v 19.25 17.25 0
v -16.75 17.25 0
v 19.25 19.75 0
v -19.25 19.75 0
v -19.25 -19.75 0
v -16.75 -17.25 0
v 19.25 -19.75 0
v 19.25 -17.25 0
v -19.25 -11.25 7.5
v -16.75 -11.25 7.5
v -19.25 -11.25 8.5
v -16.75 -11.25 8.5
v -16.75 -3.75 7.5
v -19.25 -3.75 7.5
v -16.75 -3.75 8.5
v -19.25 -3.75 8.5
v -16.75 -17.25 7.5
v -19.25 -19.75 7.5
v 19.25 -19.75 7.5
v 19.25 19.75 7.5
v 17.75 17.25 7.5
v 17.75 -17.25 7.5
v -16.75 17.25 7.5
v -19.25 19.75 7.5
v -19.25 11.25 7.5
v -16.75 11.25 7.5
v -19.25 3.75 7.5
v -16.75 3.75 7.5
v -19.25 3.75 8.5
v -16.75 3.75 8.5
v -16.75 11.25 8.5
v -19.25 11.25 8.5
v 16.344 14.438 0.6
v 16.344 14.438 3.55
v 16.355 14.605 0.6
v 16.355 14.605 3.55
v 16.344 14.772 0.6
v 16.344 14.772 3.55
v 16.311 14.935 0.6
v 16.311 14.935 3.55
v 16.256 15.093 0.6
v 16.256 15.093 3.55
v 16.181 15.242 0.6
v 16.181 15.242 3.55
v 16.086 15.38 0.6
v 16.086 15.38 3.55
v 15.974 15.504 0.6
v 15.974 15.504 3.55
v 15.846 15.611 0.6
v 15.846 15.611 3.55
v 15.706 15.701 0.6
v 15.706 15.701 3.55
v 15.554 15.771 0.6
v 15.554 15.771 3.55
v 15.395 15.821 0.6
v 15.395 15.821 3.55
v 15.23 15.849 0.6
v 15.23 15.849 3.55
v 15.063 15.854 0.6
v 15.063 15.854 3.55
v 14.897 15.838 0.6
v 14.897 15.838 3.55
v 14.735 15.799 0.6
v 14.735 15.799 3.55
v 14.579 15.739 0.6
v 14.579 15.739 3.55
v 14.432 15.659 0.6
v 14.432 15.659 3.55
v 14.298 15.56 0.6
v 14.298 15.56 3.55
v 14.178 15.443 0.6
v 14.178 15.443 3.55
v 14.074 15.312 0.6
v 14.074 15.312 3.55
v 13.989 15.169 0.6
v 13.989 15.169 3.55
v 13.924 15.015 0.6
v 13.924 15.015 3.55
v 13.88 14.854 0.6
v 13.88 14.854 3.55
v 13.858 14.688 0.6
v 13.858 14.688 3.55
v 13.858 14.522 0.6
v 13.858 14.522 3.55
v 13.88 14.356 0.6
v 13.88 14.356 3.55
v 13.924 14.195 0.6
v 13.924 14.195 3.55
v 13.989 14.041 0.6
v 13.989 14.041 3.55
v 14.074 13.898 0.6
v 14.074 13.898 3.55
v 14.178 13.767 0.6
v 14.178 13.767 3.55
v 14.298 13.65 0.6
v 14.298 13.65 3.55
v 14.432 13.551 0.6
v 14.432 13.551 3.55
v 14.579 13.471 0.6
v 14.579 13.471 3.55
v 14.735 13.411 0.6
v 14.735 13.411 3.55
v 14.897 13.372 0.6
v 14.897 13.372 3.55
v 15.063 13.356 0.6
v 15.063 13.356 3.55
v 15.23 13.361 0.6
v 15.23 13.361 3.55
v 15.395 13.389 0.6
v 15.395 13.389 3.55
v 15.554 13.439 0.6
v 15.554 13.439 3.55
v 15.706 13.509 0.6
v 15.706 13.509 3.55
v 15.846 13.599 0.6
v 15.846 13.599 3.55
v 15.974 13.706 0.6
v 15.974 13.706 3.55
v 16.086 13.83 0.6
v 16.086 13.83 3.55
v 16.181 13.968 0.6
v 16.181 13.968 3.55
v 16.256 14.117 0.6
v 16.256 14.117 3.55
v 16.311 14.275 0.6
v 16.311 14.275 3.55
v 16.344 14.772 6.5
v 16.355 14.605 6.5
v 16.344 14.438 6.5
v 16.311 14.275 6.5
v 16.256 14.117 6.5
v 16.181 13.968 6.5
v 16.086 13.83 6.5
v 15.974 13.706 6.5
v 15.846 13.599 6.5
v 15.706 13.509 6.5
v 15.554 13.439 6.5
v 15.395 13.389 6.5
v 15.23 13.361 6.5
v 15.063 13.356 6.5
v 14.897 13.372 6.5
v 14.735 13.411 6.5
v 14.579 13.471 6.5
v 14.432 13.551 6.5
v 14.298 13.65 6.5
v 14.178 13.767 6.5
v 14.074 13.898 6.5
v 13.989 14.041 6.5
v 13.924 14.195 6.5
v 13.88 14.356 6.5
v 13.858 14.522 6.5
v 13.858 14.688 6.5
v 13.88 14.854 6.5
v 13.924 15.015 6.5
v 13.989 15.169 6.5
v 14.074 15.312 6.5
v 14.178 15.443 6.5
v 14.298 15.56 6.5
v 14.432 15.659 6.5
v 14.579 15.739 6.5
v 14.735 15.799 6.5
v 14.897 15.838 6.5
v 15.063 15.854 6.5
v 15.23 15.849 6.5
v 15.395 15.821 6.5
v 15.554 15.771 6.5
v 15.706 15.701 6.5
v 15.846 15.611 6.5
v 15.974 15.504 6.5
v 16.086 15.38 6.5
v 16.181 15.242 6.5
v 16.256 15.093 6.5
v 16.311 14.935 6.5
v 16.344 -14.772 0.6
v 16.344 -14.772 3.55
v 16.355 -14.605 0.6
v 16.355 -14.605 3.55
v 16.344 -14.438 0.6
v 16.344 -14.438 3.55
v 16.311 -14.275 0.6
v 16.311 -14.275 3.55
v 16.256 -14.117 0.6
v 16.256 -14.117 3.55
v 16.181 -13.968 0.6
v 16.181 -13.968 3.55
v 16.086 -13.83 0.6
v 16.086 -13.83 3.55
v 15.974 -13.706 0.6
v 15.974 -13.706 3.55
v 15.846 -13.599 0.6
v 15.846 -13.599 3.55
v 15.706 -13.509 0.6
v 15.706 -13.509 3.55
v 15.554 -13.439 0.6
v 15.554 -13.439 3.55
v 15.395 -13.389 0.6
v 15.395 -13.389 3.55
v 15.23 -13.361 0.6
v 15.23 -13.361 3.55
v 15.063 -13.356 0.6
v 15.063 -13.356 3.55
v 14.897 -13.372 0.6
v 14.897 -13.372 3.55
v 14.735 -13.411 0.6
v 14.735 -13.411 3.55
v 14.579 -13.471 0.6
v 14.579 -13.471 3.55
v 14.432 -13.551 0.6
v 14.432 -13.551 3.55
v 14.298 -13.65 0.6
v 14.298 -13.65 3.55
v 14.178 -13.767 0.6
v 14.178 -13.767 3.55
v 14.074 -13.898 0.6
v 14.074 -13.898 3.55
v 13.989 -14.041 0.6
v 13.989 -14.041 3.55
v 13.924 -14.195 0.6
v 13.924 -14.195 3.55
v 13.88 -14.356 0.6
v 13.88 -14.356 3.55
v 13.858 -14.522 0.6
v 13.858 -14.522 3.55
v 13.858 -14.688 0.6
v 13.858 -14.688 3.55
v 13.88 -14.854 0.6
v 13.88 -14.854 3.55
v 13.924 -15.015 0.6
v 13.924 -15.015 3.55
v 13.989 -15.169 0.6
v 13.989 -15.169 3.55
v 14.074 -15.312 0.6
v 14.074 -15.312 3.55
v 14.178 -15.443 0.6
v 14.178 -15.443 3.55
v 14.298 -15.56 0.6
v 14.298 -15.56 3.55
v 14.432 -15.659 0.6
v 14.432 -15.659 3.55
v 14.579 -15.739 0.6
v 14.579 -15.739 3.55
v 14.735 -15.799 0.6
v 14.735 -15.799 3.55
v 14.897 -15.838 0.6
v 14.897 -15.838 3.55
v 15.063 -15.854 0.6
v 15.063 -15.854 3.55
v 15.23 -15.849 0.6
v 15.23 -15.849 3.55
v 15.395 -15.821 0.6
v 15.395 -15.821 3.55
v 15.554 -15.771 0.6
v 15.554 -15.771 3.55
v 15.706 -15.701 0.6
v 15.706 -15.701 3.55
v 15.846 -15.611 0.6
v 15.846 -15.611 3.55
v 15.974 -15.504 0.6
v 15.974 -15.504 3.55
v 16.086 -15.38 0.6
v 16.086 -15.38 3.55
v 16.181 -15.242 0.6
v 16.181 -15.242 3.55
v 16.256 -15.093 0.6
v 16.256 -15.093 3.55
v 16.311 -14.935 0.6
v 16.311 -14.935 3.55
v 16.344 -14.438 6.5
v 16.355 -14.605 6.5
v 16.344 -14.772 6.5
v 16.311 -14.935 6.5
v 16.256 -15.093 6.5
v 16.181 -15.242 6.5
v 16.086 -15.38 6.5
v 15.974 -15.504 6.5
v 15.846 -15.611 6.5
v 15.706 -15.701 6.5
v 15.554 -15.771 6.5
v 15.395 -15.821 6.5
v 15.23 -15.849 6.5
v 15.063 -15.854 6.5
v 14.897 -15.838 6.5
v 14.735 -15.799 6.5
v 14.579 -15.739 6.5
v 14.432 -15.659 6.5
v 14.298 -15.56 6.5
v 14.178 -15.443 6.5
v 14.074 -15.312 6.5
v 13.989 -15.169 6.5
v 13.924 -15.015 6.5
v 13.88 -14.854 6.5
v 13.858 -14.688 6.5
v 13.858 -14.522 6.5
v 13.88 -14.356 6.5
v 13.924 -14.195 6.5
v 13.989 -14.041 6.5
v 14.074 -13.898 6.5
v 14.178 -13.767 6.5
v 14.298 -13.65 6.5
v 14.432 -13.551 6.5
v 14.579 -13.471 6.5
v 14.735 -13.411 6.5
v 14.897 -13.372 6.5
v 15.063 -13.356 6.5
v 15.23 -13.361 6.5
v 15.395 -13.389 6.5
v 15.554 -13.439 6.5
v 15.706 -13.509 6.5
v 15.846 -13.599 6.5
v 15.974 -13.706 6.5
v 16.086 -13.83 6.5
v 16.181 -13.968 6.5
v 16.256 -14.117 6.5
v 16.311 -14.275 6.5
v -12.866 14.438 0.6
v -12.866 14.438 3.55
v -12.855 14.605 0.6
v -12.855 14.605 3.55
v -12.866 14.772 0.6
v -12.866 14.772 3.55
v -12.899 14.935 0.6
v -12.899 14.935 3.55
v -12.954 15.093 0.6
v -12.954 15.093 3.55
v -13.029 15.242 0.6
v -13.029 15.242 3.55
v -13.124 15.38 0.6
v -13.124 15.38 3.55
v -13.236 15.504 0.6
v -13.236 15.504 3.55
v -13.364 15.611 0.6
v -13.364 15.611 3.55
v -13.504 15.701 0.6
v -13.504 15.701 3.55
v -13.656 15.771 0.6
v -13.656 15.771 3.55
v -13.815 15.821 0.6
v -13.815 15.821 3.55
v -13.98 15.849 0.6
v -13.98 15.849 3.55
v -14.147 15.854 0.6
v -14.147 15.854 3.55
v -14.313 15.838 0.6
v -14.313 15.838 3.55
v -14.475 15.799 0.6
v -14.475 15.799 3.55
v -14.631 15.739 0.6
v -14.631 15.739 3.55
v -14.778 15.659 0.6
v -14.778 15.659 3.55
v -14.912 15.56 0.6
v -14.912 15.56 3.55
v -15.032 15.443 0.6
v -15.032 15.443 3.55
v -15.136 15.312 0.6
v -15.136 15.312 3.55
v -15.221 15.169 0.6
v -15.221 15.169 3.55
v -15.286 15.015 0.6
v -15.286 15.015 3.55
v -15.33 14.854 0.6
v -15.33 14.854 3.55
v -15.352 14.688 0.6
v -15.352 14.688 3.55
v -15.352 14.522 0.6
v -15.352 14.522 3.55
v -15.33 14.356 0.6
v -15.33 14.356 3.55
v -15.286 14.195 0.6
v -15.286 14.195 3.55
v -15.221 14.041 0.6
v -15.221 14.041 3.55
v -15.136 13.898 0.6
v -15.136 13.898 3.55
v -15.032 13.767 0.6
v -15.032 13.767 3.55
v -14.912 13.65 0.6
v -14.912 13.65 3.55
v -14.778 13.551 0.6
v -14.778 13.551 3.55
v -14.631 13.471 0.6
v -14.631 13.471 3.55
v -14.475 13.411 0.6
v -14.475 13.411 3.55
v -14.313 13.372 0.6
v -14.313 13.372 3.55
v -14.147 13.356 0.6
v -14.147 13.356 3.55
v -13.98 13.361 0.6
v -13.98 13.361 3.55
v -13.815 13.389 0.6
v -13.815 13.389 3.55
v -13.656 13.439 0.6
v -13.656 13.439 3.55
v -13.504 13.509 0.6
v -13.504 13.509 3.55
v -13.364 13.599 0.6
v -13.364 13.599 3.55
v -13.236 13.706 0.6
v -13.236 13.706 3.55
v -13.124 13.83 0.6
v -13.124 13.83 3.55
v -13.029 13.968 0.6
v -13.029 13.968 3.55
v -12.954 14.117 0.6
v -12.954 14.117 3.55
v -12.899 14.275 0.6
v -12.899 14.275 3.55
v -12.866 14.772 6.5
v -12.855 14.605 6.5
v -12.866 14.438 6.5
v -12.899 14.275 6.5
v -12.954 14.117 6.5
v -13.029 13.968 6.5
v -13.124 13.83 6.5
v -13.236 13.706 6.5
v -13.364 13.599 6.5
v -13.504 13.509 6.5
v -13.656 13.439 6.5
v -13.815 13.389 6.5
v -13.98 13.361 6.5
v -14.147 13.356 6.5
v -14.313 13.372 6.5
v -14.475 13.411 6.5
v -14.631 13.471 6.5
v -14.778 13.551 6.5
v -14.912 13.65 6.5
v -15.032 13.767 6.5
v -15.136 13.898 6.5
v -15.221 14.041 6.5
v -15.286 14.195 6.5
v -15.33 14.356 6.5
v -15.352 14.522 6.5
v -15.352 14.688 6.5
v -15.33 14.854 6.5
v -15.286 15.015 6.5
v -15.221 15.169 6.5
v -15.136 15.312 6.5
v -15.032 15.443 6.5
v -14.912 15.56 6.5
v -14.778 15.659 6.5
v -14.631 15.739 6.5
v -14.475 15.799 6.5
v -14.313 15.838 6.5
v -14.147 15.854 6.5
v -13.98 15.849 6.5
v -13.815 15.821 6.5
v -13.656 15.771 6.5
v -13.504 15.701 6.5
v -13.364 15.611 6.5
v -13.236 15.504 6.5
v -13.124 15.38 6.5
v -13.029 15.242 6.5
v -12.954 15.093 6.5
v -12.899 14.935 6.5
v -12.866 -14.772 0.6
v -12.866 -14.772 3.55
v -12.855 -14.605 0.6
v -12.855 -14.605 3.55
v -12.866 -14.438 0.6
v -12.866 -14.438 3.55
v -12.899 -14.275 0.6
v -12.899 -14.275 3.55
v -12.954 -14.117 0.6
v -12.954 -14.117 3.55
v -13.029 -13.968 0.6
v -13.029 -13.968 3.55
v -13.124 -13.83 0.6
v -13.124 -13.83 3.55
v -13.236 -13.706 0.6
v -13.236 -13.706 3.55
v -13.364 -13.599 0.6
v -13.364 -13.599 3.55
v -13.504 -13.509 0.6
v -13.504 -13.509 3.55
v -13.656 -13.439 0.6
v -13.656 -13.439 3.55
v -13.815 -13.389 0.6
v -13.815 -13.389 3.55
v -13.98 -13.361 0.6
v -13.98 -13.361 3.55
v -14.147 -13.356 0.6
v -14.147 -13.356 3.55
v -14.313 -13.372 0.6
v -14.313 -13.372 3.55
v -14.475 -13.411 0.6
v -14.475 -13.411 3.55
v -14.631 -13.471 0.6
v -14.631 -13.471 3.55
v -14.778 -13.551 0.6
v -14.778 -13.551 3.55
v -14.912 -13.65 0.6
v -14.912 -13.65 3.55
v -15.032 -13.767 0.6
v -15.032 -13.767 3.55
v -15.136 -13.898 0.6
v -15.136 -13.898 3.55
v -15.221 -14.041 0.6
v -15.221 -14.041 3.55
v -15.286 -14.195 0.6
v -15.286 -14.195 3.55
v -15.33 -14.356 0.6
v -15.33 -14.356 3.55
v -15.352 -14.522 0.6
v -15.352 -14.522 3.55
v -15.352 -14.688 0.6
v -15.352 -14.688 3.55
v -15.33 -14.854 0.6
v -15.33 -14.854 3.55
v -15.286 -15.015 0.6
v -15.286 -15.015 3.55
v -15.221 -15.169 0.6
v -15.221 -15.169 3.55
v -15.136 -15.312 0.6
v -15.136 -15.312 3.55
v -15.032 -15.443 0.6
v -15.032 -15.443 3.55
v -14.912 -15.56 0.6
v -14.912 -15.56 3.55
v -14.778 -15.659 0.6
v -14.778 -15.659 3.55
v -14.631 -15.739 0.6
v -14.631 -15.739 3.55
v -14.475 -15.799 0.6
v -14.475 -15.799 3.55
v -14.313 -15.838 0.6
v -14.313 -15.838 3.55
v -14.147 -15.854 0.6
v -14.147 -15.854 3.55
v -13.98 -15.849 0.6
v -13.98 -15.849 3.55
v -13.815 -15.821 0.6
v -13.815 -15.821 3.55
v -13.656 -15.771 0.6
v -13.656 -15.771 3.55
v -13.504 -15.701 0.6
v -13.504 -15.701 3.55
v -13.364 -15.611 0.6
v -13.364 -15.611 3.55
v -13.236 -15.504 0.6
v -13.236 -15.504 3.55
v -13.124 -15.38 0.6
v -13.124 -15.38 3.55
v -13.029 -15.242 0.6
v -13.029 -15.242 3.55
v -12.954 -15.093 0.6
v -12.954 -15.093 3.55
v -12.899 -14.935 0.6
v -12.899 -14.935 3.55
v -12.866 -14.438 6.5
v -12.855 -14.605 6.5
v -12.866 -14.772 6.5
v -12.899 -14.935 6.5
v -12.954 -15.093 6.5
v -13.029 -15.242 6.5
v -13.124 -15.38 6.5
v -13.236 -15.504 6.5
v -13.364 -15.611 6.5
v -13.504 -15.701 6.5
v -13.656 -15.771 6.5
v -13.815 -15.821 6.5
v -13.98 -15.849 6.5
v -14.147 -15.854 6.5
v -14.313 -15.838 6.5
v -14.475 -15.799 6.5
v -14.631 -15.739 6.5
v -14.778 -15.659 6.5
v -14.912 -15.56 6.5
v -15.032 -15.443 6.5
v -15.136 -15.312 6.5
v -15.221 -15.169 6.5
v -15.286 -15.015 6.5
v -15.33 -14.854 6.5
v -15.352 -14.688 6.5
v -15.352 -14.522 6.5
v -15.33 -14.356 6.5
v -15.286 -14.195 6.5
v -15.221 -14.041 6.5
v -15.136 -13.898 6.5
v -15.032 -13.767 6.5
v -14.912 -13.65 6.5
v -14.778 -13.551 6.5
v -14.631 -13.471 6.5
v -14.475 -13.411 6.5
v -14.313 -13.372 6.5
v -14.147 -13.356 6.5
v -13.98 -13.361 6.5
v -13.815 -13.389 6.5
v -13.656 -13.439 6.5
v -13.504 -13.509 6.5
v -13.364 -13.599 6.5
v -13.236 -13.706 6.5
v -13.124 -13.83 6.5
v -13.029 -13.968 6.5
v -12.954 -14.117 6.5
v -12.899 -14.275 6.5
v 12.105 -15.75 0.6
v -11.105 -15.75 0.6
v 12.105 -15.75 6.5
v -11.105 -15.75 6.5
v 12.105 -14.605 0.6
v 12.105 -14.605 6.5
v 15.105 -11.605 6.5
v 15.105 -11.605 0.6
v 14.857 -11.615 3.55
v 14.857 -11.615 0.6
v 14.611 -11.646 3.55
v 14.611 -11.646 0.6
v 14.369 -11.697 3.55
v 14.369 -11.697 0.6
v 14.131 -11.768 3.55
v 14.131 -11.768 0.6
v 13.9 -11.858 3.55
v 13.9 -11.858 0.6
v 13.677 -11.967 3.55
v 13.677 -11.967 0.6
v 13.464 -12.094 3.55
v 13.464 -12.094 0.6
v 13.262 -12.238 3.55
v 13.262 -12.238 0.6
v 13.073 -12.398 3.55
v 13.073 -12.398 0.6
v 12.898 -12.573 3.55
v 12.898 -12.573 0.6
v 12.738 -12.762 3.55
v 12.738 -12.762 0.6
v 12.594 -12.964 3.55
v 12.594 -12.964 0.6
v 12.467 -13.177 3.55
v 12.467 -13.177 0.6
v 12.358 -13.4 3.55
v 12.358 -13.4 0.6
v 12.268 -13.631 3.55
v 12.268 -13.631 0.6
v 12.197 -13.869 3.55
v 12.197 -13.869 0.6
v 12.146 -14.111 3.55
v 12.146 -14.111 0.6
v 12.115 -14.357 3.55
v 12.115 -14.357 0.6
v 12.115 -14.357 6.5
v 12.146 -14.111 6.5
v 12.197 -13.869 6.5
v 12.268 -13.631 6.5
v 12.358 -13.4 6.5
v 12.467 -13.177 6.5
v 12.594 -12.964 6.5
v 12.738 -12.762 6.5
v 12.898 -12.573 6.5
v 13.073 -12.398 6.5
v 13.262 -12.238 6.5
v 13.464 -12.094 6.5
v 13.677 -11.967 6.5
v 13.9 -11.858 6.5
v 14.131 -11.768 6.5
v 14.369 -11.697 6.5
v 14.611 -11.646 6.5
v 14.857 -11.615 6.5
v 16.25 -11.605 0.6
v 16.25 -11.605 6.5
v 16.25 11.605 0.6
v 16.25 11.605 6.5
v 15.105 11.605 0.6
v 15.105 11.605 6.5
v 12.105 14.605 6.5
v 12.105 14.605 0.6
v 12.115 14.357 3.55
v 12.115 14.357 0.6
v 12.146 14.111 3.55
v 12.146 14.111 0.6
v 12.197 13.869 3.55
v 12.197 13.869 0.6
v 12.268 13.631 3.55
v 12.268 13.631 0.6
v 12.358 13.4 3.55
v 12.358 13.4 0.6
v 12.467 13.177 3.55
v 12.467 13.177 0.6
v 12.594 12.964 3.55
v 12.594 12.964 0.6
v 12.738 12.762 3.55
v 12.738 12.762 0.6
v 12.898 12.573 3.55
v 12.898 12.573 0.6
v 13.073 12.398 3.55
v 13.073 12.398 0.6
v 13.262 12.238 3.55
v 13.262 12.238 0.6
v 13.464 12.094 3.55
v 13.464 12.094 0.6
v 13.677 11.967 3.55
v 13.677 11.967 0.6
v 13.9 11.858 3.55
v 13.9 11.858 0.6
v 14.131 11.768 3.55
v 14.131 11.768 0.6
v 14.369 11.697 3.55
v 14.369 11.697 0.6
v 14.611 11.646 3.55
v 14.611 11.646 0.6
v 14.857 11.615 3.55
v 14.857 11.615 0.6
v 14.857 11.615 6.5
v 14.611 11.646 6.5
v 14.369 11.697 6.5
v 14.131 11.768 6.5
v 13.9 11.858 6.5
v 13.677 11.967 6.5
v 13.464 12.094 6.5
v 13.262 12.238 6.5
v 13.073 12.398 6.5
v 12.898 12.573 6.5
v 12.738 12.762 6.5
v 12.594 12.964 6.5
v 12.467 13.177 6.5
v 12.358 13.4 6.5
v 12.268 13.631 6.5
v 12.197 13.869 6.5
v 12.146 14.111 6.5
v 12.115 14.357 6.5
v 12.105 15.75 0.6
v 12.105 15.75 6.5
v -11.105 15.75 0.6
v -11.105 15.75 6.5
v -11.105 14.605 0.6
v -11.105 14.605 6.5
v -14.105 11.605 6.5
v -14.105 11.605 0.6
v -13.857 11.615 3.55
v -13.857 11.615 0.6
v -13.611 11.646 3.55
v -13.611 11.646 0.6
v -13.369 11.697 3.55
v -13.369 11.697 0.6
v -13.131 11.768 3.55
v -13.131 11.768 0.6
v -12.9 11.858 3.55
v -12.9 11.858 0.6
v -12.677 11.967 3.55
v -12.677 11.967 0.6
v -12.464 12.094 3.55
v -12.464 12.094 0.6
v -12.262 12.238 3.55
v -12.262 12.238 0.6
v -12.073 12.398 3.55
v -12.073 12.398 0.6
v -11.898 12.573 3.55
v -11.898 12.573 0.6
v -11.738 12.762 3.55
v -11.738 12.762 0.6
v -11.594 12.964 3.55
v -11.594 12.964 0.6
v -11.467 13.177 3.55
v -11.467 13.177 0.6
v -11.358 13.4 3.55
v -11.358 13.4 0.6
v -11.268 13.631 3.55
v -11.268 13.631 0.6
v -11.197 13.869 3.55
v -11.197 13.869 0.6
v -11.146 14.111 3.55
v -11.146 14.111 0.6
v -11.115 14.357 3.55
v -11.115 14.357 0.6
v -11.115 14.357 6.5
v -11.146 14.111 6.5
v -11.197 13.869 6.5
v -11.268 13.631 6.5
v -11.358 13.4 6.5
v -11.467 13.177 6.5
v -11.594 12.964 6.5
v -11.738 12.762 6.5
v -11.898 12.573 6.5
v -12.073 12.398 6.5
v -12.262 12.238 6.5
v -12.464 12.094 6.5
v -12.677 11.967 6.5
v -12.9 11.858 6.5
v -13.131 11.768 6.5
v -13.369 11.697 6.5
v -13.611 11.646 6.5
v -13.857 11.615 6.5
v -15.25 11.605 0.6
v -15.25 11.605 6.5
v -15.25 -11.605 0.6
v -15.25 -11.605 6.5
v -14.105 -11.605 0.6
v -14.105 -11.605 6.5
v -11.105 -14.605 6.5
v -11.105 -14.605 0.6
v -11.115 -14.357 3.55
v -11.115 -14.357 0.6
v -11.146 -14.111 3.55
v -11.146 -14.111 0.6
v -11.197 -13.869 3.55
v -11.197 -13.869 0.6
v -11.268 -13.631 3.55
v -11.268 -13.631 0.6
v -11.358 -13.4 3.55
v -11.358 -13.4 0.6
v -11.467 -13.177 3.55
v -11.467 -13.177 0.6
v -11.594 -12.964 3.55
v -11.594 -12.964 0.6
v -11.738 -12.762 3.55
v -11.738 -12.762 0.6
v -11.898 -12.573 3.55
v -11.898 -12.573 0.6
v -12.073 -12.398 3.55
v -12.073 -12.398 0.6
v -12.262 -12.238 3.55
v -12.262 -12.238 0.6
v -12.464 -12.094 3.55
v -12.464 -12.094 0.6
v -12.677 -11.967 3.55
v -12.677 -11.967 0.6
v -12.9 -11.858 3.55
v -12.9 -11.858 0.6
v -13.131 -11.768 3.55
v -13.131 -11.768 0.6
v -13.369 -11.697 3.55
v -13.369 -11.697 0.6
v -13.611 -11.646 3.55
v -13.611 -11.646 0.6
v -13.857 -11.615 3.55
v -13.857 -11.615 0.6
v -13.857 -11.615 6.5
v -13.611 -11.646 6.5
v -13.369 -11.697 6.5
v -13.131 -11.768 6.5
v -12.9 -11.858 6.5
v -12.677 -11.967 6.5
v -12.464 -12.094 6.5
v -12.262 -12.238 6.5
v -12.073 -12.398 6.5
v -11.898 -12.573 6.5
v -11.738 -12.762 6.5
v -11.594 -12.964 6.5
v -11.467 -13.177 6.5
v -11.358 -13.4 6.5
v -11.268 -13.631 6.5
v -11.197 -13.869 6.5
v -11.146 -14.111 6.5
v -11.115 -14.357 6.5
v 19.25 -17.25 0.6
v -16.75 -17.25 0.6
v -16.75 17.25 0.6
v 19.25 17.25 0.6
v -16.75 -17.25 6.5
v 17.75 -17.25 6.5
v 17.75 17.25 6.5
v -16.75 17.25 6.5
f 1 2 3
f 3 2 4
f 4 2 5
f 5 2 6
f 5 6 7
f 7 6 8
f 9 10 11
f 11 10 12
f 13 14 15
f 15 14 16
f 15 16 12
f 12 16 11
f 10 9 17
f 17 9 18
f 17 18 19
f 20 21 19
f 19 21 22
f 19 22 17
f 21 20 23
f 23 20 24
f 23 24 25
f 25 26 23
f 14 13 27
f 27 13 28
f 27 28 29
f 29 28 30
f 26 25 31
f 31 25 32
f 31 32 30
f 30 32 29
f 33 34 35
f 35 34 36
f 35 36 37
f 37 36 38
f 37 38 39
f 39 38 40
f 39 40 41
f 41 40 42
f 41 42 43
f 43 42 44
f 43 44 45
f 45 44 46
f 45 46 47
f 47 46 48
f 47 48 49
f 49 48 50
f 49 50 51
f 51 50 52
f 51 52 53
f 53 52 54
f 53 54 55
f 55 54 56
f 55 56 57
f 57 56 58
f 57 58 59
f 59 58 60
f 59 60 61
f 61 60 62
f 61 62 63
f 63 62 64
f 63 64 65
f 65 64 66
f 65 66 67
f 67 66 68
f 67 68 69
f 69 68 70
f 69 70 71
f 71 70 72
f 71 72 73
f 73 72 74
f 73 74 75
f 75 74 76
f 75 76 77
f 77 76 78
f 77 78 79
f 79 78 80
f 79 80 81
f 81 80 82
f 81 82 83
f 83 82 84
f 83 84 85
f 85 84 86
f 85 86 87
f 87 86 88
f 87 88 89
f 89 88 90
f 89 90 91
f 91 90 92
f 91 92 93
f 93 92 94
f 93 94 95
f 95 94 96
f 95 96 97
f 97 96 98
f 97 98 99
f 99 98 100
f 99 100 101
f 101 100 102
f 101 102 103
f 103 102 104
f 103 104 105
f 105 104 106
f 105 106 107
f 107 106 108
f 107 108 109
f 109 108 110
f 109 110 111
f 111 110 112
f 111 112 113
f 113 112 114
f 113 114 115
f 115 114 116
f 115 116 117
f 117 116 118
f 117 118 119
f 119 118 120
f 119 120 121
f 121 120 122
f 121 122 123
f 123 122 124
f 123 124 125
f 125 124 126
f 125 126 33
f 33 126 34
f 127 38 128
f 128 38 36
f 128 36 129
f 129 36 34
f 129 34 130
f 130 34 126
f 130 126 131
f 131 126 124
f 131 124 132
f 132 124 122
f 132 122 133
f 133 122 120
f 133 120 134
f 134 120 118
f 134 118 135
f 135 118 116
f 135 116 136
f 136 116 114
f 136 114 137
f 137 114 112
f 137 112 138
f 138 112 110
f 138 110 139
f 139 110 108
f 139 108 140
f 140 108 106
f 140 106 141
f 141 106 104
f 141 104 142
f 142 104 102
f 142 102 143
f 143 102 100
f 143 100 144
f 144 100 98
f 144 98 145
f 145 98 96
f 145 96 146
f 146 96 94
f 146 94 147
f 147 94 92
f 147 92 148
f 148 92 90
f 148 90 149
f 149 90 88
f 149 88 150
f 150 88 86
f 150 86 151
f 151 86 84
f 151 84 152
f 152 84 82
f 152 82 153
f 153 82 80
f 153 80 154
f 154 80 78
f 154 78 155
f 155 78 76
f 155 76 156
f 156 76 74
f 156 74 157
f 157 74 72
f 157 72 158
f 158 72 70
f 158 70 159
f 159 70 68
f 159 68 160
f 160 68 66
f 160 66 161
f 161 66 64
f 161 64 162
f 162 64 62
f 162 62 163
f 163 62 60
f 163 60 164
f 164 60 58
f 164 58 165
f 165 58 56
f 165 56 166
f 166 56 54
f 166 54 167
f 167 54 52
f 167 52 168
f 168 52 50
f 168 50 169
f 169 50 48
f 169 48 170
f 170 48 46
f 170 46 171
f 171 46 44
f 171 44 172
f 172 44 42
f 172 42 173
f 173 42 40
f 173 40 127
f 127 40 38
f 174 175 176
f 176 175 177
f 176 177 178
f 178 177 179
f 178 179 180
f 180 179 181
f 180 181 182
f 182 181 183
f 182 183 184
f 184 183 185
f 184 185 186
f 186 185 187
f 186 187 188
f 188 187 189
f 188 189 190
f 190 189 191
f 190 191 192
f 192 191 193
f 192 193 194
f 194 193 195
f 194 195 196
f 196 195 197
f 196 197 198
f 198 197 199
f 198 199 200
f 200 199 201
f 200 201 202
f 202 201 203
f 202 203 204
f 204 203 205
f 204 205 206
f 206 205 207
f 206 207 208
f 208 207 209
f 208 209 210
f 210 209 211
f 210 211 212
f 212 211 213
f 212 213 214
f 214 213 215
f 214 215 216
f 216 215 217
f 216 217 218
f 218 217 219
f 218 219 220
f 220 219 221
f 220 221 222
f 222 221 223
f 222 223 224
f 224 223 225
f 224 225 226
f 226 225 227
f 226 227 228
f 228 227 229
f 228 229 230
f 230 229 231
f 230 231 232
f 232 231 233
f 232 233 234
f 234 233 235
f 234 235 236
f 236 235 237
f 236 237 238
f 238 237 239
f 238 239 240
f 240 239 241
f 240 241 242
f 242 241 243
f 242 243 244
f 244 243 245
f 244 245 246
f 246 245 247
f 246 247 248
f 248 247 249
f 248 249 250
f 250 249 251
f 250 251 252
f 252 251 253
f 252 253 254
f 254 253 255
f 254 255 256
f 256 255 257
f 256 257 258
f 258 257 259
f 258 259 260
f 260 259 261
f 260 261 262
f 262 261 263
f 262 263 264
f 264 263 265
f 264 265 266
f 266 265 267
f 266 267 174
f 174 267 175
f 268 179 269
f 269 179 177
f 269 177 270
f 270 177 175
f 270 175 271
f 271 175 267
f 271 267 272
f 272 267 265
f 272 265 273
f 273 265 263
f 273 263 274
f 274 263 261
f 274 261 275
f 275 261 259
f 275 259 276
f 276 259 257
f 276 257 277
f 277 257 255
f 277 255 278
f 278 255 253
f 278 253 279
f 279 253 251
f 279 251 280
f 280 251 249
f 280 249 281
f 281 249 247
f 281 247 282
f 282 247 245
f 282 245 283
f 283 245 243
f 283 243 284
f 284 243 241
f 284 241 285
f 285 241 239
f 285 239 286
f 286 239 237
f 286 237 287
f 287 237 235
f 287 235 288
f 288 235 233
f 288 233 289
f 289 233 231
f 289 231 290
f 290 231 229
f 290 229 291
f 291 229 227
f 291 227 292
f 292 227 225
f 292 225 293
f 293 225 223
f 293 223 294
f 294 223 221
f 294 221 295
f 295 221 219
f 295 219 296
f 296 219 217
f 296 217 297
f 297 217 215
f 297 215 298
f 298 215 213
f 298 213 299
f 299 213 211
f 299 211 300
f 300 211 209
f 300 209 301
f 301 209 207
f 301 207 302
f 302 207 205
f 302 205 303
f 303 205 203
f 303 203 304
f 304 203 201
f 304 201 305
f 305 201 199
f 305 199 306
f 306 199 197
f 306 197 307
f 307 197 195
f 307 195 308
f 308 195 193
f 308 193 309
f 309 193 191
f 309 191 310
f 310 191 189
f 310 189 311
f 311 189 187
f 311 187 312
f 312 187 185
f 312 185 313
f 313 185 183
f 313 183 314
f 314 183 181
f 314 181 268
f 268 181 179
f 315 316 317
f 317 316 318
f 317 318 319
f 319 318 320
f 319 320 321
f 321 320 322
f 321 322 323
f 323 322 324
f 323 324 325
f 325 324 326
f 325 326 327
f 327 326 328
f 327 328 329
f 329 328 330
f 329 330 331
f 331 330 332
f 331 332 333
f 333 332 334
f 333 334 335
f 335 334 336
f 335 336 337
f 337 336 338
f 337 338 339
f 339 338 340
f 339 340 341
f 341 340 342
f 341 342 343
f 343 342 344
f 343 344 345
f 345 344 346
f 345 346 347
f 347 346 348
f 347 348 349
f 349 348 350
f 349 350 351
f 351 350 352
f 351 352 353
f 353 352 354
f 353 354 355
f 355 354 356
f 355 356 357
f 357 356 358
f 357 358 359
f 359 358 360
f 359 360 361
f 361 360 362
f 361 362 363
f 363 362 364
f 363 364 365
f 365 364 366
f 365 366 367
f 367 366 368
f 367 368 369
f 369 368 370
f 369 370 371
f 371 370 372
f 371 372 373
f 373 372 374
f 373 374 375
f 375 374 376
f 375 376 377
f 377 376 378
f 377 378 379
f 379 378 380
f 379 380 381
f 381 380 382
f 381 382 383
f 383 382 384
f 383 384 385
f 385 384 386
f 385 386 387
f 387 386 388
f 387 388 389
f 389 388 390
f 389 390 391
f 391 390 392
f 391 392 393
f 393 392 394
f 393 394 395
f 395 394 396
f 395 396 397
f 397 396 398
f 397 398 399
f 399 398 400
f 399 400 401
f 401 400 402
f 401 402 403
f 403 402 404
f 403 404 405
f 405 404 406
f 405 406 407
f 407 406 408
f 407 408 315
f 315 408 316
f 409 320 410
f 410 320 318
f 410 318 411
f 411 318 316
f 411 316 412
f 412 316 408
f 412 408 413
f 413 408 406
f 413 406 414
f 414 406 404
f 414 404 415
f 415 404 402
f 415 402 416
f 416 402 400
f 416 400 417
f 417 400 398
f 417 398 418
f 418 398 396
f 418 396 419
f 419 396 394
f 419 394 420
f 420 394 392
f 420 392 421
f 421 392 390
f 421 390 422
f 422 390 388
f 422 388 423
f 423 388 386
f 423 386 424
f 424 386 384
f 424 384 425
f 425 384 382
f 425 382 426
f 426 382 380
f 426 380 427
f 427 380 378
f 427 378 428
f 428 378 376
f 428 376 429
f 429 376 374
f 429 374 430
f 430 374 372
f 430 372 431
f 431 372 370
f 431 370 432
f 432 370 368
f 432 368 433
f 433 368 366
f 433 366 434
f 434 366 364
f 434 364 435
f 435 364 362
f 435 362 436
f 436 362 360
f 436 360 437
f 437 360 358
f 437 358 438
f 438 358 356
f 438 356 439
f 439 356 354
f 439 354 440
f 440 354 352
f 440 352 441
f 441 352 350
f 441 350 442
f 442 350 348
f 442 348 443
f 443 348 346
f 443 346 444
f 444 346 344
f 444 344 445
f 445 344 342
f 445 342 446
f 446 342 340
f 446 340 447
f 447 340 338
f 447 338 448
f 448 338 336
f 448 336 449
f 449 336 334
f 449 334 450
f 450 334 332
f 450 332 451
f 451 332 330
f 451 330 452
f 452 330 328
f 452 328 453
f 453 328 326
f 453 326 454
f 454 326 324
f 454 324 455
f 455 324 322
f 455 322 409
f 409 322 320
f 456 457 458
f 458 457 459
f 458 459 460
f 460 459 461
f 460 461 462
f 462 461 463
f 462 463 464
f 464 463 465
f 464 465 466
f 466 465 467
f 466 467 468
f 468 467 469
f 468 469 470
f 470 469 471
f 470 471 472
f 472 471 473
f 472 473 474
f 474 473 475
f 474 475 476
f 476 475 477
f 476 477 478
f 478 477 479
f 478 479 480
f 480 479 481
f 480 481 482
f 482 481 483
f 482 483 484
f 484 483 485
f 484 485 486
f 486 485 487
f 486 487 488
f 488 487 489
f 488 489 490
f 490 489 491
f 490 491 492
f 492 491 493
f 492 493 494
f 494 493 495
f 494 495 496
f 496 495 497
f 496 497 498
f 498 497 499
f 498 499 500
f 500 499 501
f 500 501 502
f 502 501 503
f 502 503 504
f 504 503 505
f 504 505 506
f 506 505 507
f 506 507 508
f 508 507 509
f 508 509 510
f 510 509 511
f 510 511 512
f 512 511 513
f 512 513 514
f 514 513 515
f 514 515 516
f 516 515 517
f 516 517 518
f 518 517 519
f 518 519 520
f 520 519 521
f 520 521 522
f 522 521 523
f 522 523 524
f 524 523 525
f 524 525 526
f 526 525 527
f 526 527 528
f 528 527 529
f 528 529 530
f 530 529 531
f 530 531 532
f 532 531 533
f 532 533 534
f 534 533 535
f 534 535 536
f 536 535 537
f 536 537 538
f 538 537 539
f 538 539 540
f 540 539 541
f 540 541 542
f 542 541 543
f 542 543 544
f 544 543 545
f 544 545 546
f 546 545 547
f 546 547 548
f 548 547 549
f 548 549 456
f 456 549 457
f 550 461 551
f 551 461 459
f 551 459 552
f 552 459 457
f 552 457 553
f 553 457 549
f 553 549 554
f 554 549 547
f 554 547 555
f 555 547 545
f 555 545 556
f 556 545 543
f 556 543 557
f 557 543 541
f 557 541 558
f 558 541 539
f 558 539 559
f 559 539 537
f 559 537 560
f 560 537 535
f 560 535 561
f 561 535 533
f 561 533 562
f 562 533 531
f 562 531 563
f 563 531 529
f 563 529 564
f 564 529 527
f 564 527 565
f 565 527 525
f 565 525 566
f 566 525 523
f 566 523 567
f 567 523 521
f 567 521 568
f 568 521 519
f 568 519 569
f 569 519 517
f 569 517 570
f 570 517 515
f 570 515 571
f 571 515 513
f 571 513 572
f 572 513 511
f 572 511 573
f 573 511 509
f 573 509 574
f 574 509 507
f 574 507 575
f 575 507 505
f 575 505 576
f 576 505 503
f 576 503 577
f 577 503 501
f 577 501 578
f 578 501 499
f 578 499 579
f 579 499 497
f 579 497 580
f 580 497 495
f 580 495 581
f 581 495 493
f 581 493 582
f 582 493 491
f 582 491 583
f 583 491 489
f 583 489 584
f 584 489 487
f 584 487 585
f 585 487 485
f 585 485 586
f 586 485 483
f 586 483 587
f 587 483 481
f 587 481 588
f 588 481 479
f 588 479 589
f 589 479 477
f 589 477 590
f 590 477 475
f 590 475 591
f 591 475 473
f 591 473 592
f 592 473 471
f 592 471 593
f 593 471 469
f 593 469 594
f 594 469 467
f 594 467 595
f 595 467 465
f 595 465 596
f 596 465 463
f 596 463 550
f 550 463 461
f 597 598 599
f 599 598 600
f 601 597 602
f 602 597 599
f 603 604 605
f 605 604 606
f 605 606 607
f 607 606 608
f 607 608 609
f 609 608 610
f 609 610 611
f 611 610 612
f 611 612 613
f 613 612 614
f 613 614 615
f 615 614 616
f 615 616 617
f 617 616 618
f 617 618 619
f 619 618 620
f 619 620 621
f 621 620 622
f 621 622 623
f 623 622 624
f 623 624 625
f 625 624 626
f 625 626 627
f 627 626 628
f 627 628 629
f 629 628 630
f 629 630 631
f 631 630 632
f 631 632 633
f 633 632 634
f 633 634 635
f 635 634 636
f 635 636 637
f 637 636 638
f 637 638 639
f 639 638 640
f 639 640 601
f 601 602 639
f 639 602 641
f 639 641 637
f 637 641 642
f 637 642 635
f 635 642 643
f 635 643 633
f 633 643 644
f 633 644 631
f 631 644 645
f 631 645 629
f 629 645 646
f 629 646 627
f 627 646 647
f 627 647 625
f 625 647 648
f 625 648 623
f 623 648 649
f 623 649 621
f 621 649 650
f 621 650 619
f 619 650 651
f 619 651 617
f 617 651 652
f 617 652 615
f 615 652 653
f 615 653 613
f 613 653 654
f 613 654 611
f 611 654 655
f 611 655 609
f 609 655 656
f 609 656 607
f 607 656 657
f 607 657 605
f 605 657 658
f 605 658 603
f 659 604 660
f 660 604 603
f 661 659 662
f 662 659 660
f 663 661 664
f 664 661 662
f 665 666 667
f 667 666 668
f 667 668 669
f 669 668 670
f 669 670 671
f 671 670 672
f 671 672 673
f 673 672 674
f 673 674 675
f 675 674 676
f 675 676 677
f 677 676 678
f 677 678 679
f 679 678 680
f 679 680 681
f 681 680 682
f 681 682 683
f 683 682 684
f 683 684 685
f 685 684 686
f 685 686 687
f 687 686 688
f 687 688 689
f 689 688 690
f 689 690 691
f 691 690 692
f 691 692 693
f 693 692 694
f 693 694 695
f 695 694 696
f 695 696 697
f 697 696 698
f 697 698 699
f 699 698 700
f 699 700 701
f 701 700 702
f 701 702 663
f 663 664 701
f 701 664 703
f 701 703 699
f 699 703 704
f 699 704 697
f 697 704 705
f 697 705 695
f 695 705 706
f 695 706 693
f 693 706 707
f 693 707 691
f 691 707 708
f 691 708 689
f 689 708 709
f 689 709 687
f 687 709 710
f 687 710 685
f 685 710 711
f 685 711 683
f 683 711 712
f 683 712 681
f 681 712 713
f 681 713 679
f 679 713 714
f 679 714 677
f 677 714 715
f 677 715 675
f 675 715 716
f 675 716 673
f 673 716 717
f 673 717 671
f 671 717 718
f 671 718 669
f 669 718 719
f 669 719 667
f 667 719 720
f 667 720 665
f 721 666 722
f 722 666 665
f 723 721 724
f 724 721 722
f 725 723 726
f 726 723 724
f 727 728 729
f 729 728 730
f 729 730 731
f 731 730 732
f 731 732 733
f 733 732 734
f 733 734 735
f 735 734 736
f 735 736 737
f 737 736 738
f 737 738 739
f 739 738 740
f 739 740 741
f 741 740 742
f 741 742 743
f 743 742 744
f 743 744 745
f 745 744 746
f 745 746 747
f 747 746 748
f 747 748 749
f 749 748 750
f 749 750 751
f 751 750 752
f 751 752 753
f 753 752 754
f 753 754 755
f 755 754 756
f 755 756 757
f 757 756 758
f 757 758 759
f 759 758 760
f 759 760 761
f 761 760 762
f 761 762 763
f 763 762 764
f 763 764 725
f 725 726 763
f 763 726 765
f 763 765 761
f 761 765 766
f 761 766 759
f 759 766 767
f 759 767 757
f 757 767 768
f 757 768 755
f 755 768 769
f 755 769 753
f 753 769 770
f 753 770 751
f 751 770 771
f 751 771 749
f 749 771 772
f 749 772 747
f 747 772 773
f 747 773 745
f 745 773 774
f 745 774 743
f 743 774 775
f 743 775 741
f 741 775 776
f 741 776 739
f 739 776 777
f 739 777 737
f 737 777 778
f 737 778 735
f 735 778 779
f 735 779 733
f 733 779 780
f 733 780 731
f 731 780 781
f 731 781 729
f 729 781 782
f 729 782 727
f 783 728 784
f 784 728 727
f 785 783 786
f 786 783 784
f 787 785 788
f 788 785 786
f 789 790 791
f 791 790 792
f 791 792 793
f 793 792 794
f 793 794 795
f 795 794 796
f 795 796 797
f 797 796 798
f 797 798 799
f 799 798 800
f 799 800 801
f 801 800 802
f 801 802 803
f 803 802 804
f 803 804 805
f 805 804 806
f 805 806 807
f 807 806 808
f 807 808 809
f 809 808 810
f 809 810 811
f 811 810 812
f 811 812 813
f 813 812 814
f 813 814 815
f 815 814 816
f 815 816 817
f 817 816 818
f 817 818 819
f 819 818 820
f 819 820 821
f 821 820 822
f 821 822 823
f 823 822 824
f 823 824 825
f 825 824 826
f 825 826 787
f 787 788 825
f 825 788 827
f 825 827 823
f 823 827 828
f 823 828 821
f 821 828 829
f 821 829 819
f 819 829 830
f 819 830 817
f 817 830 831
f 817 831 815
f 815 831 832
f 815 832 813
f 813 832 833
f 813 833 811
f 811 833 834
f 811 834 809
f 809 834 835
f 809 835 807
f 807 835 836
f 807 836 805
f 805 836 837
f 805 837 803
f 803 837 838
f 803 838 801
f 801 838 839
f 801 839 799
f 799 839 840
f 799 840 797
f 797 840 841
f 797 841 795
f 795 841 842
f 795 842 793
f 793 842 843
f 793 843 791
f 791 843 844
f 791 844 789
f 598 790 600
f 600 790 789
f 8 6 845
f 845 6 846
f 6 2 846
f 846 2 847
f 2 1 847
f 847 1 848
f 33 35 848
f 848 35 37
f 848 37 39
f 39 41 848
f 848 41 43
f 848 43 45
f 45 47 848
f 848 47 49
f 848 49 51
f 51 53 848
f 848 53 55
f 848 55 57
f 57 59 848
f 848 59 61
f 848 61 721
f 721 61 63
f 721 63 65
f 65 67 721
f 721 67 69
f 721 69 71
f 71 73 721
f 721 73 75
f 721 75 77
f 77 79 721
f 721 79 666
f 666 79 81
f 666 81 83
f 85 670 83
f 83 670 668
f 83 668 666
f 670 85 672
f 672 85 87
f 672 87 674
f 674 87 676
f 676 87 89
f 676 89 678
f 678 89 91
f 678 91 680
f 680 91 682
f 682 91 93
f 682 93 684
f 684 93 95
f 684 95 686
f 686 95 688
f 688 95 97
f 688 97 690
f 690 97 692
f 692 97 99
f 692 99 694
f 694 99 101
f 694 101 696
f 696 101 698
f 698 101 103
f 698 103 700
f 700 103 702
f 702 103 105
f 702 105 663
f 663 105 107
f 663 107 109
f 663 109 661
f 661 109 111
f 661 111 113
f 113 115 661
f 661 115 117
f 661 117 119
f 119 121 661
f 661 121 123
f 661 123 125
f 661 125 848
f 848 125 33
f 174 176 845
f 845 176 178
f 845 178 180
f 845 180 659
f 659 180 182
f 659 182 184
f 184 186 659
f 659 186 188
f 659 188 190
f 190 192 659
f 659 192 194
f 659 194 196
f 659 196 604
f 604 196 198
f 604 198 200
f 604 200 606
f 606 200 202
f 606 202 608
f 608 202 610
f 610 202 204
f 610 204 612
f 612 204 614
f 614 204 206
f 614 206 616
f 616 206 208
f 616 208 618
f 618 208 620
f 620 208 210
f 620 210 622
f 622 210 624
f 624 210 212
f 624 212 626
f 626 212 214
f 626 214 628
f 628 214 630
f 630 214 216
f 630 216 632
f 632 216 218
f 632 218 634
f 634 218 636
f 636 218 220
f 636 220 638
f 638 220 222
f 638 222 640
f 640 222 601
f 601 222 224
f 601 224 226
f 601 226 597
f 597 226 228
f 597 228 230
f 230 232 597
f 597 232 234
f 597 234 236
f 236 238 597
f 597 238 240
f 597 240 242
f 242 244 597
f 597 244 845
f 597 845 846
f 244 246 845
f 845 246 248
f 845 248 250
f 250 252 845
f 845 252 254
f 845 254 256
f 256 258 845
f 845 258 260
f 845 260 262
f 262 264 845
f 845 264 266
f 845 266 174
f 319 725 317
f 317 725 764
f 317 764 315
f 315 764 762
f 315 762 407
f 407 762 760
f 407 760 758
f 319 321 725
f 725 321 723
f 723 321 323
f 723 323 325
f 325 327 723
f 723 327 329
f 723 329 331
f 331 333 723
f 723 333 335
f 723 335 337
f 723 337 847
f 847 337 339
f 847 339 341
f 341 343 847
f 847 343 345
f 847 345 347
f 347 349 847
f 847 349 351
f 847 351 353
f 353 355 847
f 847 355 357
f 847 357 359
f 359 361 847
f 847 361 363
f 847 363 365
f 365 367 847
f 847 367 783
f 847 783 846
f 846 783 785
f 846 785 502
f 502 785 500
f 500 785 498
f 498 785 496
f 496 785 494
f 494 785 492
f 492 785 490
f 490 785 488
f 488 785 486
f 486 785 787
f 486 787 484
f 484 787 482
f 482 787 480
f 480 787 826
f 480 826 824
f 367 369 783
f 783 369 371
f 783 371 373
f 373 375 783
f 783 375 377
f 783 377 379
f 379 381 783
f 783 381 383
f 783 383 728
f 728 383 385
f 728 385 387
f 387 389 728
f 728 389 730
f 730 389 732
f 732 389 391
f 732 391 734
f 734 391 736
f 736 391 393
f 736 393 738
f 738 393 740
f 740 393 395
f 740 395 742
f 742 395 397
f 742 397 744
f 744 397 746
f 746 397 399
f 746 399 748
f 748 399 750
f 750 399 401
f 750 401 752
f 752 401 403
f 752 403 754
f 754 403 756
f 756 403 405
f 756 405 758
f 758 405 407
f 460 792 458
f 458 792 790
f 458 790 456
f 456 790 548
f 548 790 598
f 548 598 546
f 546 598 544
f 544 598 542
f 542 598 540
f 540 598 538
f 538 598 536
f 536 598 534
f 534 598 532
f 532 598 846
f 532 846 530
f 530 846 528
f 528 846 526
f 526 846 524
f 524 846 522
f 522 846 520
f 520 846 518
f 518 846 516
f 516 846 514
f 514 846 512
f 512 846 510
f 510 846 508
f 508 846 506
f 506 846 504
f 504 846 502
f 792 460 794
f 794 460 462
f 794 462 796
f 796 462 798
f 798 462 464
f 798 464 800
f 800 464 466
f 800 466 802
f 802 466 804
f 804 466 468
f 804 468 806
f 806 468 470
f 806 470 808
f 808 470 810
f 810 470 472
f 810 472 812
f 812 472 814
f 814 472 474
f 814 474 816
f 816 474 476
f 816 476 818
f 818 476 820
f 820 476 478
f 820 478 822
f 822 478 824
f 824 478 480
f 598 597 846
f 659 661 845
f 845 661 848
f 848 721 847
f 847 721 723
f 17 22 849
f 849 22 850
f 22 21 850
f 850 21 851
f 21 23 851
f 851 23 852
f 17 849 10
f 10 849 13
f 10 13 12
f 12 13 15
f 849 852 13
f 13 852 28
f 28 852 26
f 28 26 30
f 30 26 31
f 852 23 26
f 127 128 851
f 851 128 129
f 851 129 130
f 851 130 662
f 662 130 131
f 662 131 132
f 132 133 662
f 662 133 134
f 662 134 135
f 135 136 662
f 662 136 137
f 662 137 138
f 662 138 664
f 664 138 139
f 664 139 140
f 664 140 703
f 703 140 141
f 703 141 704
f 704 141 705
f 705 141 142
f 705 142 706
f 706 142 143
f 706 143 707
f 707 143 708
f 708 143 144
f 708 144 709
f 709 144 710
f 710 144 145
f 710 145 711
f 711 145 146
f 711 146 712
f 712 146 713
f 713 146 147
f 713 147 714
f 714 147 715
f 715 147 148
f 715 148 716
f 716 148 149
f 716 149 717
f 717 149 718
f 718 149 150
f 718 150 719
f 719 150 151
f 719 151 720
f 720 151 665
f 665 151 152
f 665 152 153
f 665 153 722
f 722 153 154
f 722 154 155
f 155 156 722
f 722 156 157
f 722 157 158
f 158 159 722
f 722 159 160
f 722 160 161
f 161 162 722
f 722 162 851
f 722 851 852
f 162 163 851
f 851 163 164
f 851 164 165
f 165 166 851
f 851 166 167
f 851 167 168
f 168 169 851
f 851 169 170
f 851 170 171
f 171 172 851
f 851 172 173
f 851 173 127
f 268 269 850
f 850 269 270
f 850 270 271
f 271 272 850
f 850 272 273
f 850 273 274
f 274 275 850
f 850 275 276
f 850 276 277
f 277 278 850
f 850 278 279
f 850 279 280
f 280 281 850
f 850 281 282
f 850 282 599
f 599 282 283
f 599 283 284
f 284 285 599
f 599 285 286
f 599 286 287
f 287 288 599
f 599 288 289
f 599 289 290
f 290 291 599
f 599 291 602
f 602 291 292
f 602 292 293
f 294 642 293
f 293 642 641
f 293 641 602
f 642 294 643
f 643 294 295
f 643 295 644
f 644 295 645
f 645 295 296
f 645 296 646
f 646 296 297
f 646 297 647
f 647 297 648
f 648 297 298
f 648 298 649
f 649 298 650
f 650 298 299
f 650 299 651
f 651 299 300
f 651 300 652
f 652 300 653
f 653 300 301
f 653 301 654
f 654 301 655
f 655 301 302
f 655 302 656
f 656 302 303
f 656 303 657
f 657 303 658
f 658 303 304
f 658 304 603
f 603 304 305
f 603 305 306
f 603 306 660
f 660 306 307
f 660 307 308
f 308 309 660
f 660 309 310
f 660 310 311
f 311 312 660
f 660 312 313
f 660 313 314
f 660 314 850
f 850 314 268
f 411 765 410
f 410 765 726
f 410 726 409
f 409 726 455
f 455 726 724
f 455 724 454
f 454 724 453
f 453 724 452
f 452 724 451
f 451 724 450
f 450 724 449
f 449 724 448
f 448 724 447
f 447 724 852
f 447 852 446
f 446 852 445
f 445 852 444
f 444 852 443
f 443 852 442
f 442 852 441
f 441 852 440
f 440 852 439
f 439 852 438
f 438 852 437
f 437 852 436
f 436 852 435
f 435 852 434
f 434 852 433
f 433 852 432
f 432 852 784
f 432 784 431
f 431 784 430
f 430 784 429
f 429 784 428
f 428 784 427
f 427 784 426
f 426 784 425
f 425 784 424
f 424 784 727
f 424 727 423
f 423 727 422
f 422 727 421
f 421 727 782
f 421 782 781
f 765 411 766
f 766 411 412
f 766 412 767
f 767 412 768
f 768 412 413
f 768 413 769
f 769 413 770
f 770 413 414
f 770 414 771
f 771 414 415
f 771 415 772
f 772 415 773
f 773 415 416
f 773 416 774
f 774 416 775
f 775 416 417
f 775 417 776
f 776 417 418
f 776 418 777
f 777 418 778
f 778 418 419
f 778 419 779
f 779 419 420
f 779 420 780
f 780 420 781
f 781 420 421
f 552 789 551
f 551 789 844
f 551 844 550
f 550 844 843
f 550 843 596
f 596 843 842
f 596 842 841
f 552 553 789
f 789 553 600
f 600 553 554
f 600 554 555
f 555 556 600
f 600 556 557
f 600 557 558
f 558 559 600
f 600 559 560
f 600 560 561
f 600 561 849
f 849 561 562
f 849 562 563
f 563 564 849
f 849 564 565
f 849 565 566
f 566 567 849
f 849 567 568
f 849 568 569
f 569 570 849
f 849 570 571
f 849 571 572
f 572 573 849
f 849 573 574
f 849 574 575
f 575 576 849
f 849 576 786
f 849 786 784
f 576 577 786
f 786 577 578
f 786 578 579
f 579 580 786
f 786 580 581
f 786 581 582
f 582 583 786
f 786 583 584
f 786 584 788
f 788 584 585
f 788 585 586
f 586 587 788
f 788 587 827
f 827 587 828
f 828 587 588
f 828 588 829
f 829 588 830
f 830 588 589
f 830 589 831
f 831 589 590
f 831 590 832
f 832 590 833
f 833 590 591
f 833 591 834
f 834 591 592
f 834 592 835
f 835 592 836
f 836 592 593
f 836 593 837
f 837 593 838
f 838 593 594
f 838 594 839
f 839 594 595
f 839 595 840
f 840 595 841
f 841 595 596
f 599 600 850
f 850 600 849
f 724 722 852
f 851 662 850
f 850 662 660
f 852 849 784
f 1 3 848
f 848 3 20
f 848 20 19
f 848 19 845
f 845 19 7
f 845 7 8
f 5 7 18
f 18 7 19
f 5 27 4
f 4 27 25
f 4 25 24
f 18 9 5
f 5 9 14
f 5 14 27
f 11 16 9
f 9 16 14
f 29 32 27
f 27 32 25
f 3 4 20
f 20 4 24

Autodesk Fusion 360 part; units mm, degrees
sketch "Skizze1" plane through (0, 0, 0) normal (0, 0, 1) x (1, 0, 0)
  line L0 (19.25, -19.75) -> (-19.25, -19.75)
  line L1 (-19.25, -19.75) -> (-19.25, 19.75)
  line L2 (-19.25, 19.75) -> (19.25, 19.75)
  line L3 (19.25, 19.75) -> (19.25, -19.75)
  line L4 (19.25, -19.75) -> (-19.25, 19.75) construction
  line L5 (-19.25, -19.75) -> (19.25, 19.75) construction
  dimension "d1" = 38.5
  dimension "d2" = 39.5
extrude "Extrusion1" add sketch "Skizze1" along normal blind 7.5
sketch "Skizze2" plane through (0, 0, 7.5) normal (0, 0, 1) x (-1, 0, 0)
  line L0 (-19.25, -19.75) -> (19.25, -19.75)
  line L1 (19.25, -19.75) -> (19.25, 19.75)
  line L2 (19.25, 19.75) -> (-19.25, 19.75)
  line L3 (-19.25, 19.75) -> (-19.25, -19.75)
  line L4 (16.75, 17.25) -> (-17.75, 17.25)
  line L5 (-17.75, 17.25) -> (-17.75, -17.25)
  line L6 (-17.75, -17.25) -> (16.75, -17.25)
  line L7 (16.75, -17.25) -> (16.75, 17.25)
  dimension "d5" = 2.5
  dimension "d6" = 2.5
  dimension "d7" = 2.5
extrude "Extrusion2" cut sketch "Skizze2" against normal blind 1 contours L4 L5 L6 L7
sketch "Skizze3" plane through (0, 0, 0) normal (0, 0, -1) x (1, 0, 0)
  line L0 (-19.25, -19.75) -> (19.25, -19.75)
  line L1 (19.25, -19.75) -> (19.25, 19.75)
  line L2 (19.25, 19.75) -> (-19.25, 19.75)
  line L3 (-19.25, 19.75) -> (-19.25, -19.75)
  line L4 (-16.75, -17.25) -> (17.75, -17.25)
  line L5 (-16.75, 17.25) -> (-16.75, -17.25)
  line L6 (17.75, 17.25) -> (-16.75, 17.25)
  line L7 (17.75, -17.25) -> (17.75, 17.25)
extrude "Extrusion3" cut sketch "Skizze3" against normal blind 0.6 contours L4 L5 L6 L7
sketch "Skizze4" plane through (0, 0, 6.5) normal (0, 0, 1) x (-1, 0, 0)
  line L0 (16.75, -17.25) -> (16.75, 17.25)
  line L1 (16.75, 17.25) -> (-17.75, 17.25)
  line L2 (-17.75, 17.25) -> (-17.75, -17.25)
  line L3 (-17.75, -17.25) -> (16.75, -17.25)
  line L4 (15.25, -15.75) -> (-16.25, -15.75)
  line L5 (-16.25, -15.75) -> (-16.25, 15.75)
  line L6 (-16.25, 15.75) -> (15.25, 15.75)
  line L7 (15.25, 15.75) -> (15.25, -15.75)
  line L8 (14.105, -14.605) -> (-15.105, -14.605) construction
  line L9 (-15.105, -14.605) -> (-15.105, 14.605) construction
  line L10 (-15.105, 14.605) -> (14.105, 14.605) construction
  line L11 (14.105, 14.605) -> (14.105, -14.605) construction
  line L12 (14.105, -14.605) -> (16.75, -17.25) construction
  line L13 (14.105, 14.605) -> (16.75, 17.25) construction
  line L14 (14.105, -11.605) -> (15.25, -11.605)
  line L15 (11.105, -14.605) -> (11.105, -15.75)
  line L16 (-12.105, -14.605) -> (-12.105, -15.75)
  line L17 (-15.105, -11.605) -> (-16.25, -11.605)
  line L18 (-15.105, 11.605) -> (-16.25, 11.605)
  line L19 (-12.105, 14.605) -> (-12.105, 15.75)
  line L20 (14.105, 11.605) -> (15.25, 11.605)
  line L21 (11.105, 14.605) -> (11.105, 15.75)
  arc A0 (11.105, 14.605) -> (14.105, 11.605) centre (14.105, 14.605) ccw
  arc A1 (14.105, -11.605) -> (11.105, -14.605) centre (14.105, -14.605) ccw
  arc A2 (-12.105, -14.605) -> (-15.105, -11.605) centre (-15.105, -14.605) ccw
  arc A3 (-15.105, 11.605) -> (-12.105, 14.605) centre (-15.105, 14.605) ccw
  dimension "d12" = 1.5
  dimension "d13" = 1.5
  dimension "d14" = 1.5
  dimension "d15" = 1.5
  dimension "d16" = 6
  dimension "d17" = 29.21
extrude "Extrusion4" cut sketch "Skizze4" against normal through all contours L4 L5 L6 L7 L14 L15 L16 L17 L18 L19 L20 L21 A0 A1 A2 A3
sketch "Skizze5" plane through (0, 0, 6.5) normal (0, 0, 1) x (-1, 0, 0)
  line L0 (-12.105, 15.75) -> (11.105, 15.75)
  line L1 (11.105, 15.75) -> (11.105, 14.605)
  arc A0 (11.105, 14.605) -> (14.105, 11.605) centre (14.105, 14.605) ccw
  line L2 (14.105, 11.605) -> (15.25, 11.605)
  line L3 (15.25, 11.605) -> (15.25, -11.605)
  line L4 (15.25, -11.605) -> (14.105, -11.605)
  arc A1 (14.105, -11.605) -> (11.105, -14.605) centre (14.105, -14.605) ccw
  line L5 (11.105, -14.605) -> (11.105, -15.75)
  line L6 (11.105, -15.75) -> (-12.105, -15.75)
  line L7 (-12.105, -15.75) -> (-12.105, -14.605)
  arc A2 (-12.105, -14.605) -> (-15.105, -11.605) centre (-15.105, -14.605) ccw
  line L8 (-15.105, -11.605) -> (-16.25, -11.605)
  line L9 (-16.25, -11.605) -> (-16.25, 11.605)
  line L10 (-16.25, 11.605) -> (-15.105, 11.605)
  arc A3 (-15.105, 11.605) -> (-12.105, 14.605) centre (-15.105, 14.605) ccw
  line L11 (-12.105, 14.605) -> (-12.105, 15.75)
  line L12 (16.75, -17.25) -> (16.75, 17.25)
  line L13 (16.75, 17.25) -> (-17.75, 17.25)
  line L14 (-17.75, 17.25) -> (-17.75, -17.25)
  line L15 (-17.75, -17.25) -> (16.75, -17.25)
  circle A4 centre (14.105, -14.605) radius 1.25
  circle A5 centre (14.105, 14.605) radius 1.25
  circle A6 centre (-15.105, -14.605) radius 1.25
  circle A7 centre (-15.105, 14.605) radius 1.25
  dimension "d19" = 2.5
extrude "Extrusion5" cut sketch "Skizze5" against normal through all contours A4 | A5 | A6 | A7
sketch "Skizze6" plane through (0, 0, 7.5) normal (0, 0, 1) x (-1, 0, 0)
  line L0 (-17.75, 17.25) -> (16.75, 17.25)
  line L1 (16.75, 17.25) -> (16.75, -17.25)
  line L2 (16.75, -17.25) -> (-17.75, -17.25)
  line L3 (-17.75, -17.25) -> (-17.75, 17.25)
  line L4 (-19.25, -19.75) -> (19.25, -19.75)
  line L5 (19.25, -19.75) -> (19.25, 19.75)
  line L6 (19.25, 19.75) -> (-19.25, 19.75)
  line L7 (-19.25, 19.75) -> (-19.25, -19.75)
  line L8 (16.75, -11.25) -> (19.25, -11.25)
  line L9 (19.25, -11.25) -> (19.25, -3.75)
  line L10 (19.25, -3.75) -> (16.75, -3.75)
  line L11 (16.75, -3.75) -> (16.75, -11.25)
  line L12 (16.75, 3.75) -> (19.25, 3.75)
  line L13 (19.25, 3.75) -> (19.25, 11.25)
  line L14 (19.25, 11.25) -> (16.75, 11.25)
  line L15 (16.75, 11.25) -> (16.75, 3.75)
  line L16 (19.25, -3.75) -> (19.25, 3.75) construction
  dimension "d21" = 7.5
  dimension "d22" = 15
extrude "Extrusion6" add sketch "Skizze6" along normal blind 1 contours L1 L5 L12 L13 L14 L15 | L1 L5 L8 L9 L10 L11
sketch "Skizze7" plane through (0, 0, 0) normal (0, 0, -1) x (1, 0, 0)
  line L0 (-16.75, 17.25) -> (17.75, 17.25)
  line L1 (17.75, 17.25) -> (17.75, -17.25)
  line L2 (17.75, -17.25) -> (-16.75, -17.25)
  line L3 (-16.75, -17.25) -> (-16.75, 17.25)
  line L4 (-19.25, -19.75) -> (19.25, -19.75)
  line L5 (19.25, -19.75) -> (19.25, 19.75)
  line L6 (19.25, 19.75) -> (-19.25, 19.75)
  line L7 (-19.25, 19.75) -> (-19.25, -19.75)
  line L8 (17.75, 17.25) -> (19.25, 17.25)
  line L9 (19.25, 17.25) -> (19.25, -17.25)
  line L10 (19.25, -17.25) -> (17.75, -17.25)
  line L11 (17.75, -17.25) -> (17.75, 17.25)
extrude "Extrusion7" cut sketch "Skizze7" against normal up to surface (0.6 mm away) contours L1 L5 L8 L9 L10 L11
equation "d7 = d6"
equation "d13 = d12"
equation "d14 = d12"
equation "d15 = d12"
